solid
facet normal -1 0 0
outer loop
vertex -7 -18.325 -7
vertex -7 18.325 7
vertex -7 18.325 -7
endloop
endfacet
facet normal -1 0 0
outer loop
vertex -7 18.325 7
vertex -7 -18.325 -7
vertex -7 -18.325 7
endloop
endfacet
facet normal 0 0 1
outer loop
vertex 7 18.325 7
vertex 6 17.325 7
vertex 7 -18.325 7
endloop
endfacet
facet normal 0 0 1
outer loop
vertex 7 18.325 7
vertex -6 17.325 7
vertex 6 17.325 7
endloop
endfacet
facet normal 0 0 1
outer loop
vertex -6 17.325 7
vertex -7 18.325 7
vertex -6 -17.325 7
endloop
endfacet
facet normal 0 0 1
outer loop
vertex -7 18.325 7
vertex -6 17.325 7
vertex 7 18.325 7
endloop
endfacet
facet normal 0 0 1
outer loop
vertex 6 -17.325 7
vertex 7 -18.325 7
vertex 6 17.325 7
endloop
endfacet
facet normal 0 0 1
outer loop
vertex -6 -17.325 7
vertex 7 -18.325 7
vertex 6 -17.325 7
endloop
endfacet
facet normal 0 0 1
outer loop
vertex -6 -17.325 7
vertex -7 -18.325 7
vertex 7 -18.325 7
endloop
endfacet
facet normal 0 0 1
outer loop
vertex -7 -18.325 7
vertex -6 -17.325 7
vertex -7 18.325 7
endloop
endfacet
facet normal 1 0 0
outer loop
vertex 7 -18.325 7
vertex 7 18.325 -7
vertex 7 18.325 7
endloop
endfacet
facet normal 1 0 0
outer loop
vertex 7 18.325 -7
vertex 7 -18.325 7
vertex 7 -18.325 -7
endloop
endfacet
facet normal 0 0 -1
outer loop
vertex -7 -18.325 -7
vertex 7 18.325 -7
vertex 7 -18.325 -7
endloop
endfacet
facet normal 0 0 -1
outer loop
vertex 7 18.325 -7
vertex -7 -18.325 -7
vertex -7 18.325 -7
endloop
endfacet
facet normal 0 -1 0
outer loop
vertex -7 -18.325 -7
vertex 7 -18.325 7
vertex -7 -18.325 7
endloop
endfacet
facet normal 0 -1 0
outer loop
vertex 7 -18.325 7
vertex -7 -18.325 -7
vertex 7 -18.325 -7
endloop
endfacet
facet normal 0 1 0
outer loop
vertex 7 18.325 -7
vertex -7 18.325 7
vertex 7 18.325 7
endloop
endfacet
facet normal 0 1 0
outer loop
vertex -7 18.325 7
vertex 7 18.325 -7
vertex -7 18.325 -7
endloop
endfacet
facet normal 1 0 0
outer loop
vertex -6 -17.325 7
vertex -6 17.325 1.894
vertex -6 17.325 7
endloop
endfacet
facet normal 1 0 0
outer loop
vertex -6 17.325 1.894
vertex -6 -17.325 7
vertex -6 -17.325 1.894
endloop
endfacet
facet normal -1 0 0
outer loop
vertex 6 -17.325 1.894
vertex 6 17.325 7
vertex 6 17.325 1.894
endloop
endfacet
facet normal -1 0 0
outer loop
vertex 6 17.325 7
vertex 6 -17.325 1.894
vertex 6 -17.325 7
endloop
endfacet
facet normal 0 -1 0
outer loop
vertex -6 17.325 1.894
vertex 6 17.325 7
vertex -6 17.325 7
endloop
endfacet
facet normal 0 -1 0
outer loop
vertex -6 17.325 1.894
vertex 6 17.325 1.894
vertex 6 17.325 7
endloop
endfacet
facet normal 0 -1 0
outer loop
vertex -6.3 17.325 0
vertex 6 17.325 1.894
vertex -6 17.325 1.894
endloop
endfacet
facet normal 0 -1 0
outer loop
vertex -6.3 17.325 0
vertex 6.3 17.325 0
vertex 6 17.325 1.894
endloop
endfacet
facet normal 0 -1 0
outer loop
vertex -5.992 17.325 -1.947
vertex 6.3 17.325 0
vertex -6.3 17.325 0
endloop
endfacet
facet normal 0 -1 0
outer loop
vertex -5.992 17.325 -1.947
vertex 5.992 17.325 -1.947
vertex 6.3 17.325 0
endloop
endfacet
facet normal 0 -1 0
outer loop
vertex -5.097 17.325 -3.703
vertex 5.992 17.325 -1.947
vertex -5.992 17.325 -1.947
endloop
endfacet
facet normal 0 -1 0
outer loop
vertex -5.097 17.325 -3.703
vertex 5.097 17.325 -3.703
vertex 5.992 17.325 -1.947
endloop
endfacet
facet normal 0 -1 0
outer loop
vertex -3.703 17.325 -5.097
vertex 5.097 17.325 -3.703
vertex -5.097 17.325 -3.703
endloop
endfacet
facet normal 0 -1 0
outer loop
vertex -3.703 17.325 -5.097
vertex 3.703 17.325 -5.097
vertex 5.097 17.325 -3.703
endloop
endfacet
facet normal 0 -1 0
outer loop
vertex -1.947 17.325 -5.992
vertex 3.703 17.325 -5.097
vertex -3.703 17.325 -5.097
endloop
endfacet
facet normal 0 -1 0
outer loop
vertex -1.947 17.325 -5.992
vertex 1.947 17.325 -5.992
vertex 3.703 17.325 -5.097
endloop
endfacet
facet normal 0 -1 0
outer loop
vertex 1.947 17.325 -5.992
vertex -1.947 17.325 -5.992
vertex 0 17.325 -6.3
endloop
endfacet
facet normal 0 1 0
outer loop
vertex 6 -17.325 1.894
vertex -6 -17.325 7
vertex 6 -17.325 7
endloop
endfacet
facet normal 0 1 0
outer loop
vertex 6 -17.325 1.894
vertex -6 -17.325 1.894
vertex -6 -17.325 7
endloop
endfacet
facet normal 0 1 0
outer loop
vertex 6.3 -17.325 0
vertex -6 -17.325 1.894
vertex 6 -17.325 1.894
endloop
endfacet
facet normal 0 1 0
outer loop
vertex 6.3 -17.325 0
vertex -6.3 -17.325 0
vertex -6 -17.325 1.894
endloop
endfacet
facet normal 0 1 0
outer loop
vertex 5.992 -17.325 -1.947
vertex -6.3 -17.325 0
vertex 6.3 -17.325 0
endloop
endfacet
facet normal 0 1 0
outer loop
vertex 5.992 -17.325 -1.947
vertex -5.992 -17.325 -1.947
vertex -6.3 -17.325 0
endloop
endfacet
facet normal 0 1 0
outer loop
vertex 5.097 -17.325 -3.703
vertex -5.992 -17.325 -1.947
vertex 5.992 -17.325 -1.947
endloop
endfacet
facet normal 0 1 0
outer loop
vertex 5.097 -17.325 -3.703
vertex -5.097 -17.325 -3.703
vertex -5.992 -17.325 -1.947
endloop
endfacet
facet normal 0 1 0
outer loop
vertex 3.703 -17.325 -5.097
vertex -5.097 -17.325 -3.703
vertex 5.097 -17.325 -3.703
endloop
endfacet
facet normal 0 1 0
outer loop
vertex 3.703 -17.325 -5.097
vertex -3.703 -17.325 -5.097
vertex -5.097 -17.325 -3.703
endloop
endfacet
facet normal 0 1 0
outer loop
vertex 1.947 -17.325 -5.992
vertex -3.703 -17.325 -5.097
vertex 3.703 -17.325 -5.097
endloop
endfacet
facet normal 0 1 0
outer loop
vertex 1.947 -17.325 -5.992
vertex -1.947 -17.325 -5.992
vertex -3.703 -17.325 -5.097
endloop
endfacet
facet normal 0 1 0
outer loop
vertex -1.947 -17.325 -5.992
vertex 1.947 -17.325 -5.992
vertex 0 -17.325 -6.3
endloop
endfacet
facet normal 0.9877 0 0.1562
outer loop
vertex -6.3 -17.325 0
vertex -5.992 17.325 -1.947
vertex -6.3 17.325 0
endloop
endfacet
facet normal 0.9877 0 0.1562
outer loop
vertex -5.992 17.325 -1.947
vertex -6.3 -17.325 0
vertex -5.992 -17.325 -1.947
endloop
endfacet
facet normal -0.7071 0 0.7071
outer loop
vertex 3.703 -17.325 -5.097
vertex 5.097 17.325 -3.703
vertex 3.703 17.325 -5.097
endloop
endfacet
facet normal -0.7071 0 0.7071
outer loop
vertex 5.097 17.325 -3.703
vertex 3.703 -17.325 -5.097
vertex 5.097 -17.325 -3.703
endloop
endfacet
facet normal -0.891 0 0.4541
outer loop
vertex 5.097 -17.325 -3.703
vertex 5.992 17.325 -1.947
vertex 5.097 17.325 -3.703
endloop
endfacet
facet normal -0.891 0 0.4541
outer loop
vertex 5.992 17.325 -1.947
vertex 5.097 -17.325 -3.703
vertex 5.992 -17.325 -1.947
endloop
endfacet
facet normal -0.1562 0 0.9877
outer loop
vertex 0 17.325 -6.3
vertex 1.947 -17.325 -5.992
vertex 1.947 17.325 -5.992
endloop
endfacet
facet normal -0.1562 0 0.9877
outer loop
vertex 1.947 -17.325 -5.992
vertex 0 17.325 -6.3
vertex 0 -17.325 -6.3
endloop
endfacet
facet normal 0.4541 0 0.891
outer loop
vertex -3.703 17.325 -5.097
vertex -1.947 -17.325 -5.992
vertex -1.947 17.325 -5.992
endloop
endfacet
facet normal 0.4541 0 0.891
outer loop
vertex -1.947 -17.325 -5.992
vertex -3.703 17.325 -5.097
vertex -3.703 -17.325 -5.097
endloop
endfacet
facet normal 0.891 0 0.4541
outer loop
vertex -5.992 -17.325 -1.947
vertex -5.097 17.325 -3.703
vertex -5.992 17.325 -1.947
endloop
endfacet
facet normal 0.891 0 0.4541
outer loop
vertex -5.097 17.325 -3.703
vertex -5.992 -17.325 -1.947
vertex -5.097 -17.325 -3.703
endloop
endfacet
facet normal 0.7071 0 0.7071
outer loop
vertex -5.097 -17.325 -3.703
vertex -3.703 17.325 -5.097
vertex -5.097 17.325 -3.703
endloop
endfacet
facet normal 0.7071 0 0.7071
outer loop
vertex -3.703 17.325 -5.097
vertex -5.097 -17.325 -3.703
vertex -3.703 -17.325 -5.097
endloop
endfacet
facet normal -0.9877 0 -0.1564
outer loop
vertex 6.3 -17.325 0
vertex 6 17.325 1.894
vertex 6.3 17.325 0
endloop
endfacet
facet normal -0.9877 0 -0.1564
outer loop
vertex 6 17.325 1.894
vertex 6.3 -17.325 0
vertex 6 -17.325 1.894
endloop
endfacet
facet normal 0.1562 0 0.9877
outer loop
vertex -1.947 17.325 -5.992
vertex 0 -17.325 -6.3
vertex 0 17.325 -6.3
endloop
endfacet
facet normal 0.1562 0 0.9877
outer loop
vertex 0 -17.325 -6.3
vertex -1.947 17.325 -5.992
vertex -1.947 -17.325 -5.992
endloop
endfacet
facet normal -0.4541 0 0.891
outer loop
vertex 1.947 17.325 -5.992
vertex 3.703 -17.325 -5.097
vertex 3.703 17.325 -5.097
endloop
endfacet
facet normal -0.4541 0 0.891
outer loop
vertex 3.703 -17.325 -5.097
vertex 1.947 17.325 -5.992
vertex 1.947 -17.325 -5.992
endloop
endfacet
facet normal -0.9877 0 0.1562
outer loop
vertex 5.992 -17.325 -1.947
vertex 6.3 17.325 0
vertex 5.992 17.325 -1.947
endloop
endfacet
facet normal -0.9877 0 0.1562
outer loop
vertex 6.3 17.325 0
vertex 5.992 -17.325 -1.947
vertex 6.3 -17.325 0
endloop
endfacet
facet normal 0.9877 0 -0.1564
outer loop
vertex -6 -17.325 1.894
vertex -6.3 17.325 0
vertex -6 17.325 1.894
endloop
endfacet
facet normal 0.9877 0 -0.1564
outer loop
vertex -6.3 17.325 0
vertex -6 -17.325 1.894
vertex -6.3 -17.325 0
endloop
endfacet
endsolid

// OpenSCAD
use <MCAD/triangles.scad>;

tolerance = 0.5;

// Battery specs
lr44_h = 5.5;
lr44_r = 12/2;
lr44_n = 4+2; // number of batteries + extra space for springs
lr44_tol_mult = 1.05; // Tolerance multiplier

// Case specs
wall = 1;
case_l = lr44_r*2 + wall*2;
case_w = lr44_h*(lr44_n)*lr44_tol_mult + wall*2;
case_h = lr44_r*2 + wall*2;

difference(){
  // Outter cube
  cube([case_l, case_w, case_h], center=true);
  // Inner cube space
  translate([0,0,case_h/3])
  scale([1,lr44_tol_mult,1])
  cube([case_l-wall*2, lr44_h*lr44_n, case_h-wall*2], center=true);
  // Battery space
  rotate([-90,0,0])
  scale([lr44_tol_mult,lr44_tol_mult,lr44_n*lr44_tol_mult])
  cylinder(h=lr44_h, r=lr44_r, center=true, $fn=20);
}
